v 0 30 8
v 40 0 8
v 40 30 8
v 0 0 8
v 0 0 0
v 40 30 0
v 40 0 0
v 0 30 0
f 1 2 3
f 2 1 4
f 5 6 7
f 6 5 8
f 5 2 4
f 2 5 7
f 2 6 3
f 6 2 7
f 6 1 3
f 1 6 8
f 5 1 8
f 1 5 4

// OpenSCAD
module rectangular_box(length, width, height) {
    cube([length, width, height]);
}

rectangular_box(40, 30, 8);
